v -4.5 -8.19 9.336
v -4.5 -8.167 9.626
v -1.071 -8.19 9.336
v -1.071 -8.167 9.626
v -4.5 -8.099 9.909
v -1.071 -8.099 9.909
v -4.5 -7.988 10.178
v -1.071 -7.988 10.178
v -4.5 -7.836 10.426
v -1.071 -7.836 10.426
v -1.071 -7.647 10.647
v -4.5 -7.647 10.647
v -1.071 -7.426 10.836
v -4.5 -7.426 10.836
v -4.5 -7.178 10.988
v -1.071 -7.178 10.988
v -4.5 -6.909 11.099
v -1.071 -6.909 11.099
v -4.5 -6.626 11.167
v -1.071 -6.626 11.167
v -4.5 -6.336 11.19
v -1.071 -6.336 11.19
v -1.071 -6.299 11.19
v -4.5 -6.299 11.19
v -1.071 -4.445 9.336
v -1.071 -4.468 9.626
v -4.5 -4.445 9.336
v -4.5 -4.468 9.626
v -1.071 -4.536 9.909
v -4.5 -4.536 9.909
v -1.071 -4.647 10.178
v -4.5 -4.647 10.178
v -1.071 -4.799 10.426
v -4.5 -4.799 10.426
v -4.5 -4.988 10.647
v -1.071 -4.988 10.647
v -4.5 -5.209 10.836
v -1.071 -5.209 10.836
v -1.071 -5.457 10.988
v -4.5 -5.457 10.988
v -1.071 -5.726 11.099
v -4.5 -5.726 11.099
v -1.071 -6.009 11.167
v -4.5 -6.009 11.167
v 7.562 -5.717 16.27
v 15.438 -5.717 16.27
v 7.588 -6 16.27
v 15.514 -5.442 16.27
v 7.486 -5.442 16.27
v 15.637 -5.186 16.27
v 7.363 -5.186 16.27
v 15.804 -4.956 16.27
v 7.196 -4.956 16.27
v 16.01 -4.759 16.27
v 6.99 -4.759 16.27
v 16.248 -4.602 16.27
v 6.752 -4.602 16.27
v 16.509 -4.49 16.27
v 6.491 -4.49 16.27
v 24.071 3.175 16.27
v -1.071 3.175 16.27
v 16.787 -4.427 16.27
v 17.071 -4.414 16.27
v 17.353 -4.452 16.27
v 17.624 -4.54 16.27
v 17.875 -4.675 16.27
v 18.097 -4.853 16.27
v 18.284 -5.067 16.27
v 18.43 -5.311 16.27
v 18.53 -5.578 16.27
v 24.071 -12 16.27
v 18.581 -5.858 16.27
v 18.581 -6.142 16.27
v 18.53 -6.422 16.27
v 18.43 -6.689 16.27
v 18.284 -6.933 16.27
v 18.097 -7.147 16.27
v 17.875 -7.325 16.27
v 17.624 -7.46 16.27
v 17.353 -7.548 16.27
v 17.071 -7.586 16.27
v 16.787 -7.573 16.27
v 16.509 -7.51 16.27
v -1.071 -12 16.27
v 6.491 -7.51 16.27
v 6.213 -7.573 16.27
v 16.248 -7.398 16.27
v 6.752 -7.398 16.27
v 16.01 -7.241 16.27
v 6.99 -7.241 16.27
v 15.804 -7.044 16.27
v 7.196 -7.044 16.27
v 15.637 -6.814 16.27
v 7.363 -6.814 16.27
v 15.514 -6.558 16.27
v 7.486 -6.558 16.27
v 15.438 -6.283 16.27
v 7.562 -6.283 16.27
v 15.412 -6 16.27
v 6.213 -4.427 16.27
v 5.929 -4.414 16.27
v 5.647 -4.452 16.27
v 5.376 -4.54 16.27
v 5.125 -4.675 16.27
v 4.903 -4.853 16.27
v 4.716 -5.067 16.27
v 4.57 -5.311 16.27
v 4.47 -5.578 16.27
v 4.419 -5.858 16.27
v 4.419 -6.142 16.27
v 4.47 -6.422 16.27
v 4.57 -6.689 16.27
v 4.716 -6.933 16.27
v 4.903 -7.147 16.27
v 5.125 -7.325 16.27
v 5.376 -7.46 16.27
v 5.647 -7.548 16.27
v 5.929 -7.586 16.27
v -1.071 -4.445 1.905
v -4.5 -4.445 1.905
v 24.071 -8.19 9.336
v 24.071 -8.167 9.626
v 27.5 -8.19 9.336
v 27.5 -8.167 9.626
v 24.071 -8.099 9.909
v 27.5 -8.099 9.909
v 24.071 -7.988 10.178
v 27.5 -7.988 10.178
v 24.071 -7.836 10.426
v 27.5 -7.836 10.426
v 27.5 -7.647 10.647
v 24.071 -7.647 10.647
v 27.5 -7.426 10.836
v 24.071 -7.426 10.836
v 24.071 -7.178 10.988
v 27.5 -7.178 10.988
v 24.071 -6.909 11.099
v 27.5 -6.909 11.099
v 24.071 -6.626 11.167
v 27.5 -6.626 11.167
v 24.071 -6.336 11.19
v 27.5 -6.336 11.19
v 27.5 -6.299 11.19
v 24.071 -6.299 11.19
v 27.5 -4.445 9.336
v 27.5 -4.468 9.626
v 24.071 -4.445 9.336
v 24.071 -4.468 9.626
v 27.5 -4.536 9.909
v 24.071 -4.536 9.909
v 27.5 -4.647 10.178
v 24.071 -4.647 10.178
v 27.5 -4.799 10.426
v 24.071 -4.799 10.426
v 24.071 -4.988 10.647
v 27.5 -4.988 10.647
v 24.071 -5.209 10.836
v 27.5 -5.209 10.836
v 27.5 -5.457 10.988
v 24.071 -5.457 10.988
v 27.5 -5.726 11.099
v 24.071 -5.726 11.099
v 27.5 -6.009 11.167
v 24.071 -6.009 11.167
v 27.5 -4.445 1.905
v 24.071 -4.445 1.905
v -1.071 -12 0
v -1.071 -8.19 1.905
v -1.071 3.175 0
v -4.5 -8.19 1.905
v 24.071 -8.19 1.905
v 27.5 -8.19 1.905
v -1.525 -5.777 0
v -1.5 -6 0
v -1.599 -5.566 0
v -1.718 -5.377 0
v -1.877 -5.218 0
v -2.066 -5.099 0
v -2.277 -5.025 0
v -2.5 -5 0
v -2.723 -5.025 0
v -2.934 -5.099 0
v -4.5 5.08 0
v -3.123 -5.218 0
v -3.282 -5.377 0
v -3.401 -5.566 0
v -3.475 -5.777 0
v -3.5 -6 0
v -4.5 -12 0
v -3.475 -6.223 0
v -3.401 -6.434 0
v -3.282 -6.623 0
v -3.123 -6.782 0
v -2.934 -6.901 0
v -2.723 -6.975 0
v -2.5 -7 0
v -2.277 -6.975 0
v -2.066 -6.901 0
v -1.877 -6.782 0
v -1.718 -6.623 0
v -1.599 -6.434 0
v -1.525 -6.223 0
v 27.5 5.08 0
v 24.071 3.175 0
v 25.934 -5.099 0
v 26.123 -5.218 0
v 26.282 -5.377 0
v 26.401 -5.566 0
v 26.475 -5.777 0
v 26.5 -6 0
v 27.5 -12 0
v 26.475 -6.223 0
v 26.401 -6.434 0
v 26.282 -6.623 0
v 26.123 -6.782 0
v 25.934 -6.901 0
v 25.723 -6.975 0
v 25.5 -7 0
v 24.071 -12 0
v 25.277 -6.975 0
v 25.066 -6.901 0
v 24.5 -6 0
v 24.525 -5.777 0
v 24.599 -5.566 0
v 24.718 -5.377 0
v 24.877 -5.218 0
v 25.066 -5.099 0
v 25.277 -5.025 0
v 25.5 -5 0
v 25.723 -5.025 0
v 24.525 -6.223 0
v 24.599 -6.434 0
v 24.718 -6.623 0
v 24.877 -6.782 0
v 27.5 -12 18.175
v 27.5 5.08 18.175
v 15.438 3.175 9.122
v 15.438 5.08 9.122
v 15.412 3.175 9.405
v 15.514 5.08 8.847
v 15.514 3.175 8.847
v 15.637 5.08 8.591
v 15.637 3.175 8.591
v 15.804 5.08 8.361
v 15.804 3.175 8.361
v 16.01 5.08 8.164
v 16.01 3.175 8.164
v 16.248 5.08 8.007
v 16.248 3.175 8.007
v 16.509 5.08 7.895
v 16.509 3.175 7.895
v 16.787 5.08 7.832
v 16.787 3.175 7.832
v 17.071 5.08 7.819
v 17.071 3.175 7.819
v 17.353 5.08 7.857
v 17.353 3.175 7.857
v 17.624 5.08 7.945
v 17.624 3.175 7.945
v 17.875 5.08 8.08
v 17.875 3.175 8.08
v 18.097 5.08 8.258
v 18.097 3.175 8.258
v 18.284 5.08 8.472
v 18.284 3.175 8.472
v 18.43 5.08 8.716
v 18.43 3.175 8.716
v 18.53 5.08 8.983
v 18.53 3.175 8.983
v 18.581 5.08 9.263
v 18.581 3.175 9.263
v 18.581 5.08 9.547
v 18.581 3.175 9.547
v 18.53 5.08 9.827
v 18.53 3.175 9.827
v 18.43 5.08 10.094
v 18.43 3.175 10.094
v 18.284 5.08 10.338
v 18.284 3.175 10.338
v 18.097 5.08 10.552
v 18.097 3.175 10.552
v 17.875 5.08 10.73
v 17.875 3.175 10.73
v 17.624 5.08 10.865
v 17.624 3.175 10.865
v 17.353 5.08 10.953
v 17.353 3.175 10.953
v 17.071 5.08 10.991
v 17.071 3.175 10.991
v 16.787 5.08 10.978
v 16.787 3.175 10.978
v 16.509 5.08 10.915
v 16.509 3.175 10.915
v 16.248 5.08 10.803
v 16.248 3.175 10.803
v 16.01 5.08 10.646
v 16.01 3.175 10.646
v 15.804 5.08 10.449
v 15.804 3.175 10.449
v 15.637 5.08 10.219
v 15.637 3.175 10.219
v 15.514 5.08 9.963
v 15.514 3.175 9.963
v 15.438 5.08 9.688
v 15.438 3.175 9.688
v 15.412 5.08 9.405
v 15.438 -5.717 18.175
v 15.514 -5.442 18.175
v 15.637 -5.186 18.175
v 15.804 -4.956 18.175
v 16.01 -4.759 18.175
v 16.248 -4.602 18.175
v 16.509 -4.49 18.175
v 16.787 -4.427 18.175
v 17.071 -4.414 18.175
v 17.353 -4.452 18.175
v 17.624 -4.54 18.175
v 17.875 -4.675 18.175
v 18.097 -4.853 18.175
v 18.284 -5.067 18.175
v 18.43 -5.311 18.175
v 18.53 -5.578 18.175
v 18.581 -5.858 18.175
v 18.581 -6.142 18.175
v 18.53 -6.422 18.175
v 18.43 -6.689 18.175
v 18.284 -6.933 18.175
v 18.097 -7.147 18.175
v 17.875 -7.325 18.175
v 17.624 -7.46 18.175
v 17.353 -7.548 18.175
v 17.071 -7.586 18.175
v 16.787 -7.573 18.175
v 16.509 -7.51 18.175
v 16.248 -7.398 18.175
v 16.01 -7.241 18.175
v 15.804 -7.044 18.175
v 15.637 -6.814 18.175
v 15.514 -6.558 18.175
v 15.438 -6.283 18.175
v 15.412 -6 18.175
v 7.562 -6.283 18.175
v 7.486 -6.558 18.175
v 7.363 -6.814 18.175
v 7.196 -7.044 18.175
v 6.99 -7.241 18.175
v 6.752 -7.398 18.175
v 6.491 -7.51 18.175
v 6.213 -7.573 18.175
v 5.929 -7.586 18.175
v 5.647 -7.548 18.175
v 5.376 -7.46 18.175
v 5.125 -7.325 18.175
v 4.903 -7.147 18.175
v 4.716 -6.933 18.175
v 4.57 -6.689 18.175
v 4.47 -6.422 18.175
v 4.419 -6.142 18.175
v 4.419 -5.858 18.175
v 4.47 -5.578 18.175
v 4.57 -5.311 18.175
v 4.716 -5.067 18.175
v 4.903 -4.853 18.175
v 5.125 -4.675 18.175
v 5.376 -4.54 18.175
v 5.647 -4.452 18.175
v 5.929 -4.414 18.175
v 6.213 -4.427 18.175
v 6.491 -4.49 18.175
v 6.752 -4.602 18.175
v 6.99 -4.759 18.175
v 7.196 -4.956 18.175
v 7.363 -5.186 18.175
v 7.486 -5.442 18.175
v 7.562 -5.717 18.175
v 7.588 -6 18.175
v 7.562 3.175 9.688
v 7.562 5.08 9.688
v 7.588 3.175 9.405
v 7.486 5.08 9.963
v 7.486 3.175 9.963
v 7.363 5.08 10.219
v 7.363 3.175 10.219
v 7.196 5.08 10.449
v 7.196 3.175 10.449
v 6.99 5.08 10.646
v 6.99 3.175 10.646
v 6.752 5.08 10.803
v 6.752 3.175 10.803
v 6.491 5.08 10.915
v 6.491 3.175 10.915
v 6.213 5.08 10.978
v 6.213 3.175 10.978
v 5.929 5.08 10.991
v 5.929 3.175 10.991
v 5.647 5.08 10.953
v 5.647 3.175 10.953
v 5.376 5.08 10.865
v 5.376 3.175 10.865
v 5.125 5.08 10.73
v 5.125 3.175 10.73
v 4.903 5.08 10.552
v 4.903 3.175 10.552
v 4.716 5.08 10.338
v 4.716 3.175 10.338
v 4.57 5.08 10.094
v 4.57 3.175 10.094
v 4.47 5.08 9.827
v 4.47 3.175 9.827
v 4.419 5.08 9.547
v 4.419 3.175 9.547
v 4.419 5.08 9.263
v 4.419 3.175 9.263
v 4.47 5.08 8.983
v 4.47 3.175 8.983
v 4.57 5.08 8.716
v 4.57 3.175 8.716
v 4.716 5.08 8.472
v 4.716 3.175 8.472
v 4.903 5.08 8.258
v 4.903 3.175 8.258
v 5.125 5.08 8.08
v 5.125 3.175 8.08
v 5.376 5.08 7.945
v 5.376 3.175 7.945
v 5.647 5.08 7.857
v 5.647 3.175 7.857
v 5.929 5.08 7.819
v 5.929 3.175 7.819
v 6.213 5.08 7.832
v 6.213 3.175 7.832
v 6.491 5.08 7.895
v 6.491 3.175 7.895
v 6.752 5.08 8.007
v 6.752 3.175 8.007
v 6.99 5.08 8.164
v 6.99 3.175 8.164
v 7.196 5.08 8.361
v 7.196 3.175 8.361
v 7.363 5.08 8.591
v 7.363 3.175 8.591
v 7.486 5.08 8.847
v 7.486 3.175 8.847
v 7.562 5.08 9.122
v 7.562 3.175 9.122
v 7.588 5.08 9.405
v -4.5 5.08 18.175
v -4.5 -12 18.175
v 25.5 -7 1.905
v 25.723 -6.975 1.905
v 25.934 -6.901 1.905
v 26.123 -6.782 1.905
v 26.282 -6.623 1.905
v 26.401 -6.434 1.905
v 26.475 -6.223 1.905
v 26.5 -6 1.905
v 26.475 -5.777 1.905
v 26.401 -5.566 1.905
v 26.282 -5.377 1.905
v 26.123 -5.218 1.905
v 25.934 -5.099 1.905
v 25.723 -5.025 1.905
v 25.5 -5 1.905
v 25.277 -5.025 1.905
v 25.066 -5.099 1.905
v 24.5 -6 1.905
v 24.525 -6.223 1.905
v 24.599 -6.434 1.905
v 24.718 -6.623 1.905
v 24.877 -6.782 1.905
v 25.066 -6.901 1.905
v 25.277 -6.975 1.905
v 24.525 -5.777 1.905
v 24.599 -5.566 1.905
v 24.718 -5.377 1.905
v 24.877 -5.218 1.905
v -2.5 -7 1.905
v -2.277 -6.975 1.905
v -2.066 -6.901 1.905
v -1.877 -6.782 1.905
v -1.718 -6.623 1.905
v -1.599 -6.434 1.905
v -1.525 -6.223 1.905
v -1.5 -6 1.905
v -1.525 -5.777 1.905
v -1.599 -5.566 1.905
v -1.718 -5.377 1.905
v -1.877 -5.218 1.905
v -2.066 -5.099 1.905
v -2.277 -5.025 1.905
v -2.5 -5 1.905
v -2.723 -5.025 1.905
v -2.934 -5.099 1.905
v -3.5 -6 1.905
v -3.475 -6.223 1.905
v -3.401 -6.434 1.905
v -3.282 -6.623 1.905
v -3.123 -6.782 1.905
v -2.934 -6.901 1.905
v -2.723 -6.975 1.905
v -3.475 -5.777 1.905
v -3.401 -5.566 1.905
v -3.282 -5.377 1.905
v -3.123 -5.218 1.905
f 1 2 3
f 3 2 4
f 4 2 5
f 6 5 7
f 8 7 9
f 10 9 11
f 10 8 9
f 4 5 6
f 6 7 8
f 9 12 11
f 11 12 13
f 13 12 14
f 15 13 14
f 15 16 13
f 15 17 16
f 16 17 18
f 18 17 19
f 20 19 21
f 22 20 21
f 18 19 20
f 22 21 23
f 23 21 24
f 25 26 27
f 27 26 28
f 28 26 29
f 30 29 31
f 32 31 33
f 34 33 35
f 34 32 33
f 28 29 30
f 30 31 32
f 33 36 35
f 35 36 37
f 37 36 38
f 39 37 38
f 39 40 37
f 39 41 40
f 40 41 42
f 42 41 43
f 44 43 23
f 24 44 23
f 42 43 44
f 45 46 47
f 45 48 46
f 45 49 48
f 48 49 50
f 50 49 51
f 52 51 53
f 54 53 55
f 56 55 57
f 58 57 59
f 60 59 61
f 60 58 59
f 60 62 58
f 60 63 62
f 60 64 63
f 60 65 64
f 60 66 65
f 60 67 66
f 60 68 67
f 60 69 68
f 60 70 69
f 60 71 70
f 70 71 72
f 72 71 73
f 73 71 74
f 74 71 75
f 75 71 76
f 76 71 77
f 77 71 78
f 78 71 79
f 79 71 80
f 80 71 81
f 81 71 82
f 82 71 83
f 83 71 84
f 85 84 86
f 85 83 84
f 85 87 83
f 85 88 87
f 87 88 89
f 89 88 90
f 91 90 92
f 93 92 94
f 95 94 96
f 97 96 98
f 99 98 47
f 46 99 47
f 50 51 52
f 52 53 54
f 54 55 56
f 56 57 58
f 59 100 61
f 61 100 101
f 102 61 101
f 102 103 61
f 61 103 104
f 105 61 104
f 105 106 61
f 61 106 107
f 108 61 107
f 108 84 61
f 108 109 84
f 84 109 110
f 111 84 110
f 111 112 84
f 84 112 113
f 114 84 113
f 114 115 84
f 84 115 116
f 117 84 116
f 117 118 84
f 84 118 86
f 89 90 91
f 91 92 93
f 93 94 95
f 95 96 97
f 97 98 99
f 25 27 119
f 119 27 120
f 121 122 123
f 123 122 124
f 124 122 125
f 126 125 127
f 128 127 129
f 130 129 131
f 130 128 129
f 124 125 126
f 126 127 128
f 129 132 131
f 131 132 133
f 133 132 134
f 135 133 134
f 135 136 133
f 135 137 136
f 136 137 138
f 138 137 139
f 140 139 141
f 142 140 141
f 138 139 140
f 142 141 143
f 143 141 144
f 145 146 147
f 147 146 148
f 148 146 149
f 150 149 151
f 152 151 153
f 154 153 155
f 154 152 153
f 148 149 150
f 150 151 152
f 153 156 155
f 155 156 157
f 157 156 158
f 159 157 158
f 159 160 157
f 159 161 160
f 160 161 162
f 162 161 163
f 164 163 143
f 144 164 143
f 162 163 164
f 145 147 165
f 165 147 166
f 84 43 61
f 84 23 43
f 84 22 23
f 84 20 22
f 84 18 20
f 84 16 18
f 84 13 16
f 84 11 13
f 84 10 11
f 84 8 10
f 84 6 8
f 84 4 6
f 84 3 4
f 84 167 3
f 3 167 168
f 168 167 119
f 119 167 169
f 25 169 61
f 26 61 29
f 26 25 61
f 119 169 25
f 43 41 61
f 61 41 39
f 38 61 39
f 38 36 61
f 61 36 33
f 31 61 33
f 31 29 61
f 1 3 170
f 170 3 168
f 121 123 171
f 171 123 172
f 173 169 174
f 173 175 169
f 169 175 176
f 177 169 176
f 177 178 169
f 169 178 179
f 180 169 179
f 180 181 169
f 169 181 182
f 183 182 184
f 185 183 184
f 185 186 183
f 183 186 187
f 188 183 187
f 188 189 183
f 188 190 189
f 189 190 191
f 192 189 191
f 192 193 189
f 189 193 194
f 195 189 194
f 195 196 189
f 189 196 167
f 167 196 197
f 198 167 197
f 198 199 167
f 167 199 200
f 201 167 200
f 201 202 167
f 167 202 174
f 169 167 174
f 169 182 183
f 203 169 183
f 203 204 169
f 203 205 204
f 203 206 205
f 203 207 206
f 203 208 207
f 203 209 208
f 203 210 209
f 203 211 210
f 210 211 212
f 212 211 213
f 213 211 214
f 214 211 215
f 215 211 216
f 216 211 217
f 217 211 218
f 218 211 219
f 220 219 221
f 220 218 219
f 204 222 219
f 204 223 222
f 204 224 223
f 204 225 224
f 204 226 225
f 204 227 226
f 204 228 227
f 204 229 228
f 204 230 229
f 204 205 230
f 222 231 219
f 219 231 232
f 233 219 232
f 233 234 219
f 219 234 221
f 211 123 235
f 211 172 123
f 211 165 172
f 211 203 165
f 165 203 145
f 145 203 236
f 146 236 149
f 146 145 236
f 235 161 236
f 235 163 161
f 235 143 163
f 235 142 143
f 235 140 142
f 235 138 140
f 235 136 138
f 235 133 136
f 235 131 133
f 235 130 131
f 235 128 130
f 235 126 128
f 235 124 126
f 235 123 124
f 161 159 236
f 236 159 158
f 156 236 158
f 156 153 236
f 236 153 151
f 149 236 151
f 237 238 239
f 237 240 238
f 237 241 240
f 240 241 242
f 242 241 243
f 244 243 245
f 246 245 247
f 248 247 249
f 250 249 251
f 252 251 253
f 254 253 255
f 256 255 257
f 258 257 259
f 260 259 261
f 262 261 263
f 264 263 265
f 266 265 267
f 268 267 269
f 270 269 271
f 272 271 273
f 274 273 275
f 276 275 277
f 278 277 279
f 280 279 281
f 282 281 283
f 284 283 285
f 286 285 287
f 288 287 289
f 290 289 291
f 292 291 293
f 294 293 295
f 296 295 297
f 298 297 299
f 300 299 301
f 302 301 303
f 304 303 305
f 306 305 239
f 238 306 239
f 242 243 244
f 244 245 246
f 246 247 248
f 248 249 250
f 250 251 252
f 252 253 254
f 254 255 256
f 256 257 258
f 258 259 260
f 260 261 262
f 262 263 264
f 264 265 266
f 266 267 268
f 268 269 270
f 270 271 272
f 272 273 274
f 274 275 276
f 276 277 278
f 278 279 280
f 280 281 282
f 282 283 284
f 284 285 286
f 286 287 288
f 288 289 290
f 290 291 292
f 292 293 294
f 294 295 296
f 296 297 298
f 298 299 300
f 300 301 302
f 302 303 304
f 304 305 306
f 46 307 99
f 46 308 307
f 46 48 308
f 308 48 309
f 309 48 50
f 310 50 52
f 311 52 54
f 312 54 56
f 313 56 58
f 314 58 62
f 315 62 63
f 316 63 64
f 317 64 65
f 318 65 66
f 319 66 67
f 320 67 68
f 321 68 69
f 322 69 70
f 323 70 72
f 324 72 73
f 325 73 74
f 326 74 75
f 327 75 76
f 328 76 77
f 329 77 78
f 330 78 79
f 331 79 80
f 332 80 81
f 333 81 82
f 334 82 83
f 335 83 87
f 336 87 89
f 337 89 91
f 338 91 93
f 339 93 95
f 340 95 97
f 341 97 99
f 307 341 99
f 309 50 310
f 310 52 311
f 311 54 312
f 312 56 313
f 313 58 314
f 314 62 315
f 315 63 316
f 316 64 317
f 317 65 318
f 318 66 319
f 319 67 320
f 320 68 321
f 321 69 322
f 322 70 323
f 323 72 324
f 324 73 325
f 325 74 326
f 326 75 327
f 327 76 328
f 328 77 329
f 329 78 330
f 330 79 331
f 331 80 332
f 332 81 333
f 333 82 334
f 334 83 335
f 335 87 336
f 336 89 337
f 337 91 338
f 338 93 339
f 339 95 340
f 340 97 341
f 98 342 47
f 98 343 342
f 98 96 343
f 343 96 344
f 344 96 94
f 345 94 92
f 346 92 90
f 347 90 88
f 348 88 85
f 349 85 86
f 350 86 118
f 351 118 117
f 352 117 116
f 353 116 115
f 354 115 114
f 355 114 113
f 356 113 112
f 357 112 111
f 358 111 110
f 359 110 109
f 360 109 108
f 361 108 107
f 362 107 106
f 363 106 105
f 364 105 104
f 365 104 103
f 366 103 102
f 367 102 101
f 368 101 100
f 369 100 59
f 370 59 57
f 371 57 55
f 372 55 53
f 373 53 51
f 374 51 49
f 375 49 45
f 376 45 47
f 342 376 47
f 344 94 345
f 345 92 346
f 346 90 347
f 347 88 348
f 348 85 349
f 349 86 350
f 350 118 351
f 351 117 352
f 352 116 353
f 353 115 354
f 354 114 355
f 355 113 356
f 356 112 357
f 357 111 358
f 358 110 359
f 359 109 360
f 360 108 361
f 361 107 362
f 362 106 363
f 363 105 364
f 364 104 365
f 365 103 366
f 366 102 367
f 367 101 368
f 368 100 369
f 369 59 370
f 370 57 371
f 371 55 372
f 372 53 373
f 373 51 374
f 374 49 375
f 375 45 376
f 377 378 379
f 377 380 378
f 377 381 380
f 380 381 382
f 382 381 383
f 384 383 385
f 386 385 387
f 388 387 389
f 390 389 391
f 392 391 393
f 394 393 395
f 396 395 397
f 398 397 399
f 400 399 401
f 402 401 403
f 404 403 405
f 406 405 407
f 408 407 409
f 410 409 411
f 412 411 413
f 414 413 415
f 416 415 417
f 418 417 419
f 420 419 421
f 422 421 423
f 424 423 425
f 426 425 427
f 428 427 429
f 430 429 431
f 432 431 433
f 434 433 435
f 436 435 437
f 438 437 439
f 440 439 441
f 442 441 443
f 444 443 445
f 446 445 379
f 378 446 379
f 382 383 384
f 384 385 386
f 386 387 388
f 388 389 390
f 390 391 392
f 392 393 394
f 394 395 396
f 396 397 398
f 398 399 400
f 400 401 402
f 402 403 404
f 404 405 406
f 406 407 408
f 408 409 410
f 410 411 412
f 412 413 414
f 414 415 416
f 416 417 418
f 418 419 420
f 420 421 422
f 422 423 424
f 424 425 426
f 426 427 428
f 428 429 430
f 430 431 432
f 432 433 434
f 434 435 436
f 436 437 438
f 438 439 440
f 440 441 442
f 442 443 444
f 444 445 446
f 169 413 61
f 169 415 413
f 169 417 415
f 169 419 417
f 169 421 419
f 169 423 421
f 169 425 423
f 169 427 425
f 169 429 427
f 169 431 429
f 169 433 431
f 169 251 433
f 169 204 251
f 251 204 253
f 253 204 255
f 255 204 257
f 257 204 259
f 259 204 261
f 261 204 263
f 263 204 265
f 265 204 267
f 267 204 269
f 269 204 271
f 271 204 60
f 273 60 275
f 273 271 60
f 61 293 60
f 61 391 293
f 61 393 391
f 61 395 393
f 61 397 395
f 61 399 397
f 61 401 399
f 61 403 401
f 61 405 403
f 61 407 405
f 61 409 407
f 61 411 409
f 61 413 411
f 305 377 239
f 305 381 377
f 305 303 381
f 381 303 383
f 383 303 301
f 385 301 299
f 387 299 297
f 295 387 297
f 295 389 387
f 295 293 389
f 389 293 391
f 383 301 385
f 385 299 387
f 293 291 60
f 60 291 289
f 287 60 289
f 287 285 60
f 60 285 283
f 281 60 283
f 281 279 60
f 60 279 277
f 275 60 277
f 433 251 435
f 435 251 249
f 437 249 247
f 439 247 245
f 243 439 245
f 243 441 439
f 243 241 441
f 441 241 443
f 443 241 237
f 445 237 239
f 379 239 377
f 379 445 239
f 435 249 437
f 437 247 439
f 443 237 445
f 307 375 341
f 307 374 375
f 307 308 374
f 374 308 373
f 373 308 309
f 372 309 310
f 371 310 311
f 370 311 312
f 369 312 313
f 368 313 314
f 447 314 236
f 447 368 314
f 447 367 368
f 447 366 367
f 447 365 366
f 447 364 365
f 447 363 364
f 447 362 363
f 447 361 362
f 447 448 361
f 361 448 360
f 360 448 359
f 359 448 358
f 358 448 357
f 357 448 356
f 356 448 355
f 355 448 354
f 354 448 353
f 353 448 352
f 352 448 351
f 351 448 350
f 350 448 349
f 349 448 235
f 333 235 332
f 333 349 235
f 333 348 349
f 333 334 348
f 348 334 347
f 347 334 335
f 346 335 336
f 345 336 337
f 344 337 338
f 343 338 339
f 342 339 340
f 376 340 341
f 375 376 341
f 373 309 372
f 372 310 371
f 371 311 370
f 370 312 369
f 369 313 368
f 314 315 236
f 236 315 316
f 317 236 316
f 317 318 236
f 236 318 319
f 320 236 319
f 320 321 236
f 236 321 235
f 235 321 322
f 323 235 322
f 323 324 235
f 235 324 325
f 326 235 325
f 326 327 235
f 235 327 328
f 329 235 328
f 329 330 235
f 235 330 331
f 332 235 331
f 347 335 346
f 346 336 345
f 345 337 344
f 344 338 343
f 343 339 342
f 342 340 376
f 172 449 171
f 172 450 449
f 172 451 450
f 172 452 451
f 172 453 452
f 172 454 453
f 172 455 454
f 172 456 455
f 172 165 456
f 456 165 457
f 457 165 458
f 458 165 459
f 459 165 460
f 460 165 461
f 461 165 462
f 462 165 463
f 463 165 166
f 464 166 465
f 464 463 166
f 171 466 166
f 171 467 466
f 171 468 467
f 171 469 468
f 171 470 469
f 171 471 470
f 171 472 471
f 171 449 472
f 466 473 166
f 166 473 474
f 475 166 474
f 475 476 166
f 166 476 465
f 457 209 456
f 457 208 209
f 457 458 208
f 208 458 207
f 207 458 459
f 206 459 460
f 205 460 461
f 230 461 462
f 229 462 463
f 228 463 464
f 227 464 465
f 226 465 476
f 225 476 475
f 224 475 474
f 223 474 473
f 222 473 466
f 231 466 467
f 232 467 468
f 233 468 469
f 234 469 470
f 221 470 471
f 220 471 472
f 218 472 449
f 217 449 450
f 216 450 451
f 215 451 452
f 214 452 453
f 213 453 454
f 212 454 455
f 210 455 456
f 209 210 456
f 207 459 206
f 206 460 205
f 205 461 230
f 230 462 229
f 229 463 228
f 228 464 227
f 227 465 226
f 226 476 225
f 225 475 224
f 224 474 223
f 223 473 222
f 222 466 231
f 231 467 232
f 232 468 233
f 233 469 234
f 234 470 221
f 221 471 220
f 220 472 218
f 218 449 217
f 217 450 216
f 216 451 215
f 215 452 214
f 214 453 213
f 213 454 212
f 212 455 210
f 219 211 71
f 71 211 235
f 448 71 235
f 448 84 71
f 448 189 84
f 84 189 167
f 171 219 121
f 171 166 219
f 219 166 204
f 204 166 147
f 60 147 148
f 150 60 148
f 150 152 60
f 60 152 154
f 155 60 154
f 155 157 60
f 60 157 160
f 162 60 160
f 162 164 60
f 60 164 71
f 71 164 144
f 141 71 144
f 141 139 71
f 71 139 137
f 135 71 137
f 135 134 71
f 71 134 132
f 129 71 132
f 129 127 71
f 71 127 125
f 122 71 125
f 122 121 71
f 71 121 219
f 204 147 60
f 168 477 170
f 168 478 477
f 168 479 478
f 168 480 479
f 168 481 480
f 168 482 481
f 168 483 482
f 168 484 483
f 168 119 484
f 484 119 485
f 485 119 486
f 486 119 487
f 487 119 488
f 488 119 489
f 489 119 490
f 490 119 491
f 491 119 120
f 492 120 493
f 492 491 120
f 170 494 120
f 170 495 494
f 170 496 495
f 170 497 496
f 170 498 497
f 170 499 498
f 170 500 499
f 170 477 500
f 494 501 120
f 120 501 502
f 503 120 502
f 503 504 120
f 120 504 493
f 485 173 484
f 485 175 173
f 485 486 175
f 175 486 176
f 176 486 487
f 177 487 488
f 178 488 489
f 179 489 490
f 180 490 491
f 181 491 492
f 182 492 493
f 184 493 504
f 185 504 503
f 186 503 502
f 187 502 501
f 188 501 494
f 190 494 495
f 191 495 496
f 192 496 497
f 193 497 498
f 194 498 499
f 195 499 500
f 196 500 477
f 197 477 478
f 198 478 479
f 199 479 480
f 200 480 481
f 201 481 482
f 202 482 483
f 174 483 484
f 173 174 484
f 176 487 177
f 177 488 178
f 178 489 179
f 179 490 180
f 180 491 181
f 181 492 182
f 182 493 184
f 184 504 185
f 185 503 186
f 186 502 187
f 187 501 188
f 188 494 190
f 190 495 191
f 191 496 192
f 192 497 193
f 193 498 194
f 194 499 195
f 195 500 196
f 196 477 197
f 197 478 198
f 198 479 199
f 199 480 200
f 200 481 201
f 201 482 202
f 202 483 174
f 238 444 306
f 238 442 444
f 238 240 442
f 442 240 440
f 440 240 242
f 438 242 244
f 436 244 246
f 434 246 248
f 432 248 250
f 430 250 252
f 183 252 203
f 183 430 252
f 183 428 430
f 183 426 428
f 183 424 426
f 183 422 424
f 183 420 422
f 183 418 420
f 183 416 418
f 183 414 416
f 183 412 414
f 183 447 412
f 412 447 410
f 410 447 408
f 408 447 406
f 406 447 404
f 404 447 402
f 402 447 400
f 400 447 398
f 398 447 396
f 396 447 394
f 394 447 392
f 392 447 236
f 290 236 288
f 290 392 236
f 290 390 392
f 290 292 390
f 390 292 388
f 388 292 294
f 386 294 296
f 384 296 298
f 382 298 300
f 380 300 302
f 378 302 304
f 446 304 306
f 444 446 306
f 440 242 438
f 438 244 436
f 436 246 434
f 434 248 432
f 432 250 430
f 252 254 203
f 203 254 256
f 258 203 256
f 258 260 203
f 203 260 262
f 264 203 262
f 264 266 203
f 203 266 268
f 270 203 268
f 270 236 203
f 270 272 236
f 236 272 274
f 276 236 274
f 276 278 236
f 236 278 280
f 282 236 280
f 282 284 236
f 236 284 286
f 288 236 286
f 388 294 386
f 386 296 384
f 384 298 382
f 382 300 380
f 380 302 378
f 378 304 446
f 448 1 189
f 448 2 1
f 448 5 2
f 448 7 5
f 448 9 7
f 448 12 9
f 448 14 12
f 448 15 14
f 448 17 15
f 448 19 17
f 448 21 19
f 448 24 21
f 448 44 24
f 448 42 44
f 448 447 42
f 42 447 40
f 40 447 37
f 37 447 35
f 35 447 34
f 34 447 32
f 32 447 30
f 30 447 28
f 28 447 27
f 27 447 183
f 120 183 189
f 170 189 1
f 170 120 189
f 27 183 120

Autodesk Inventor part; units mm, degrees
sketch "Sketch1" plane through (0, 0, 0) normal (0, 0, 1) x (1, 0, 0)
  line L0 (-4.3, 0) -> (27.3, 0) projected
  line L1 (27.5, -0.2) -> (27.5, -5.5) projected
  line L2 (-4.3, -12) -> (27.3, -12) projected
  line L3 (27.5, -6.5) -> (27.5, -11.8) projected
  line L4 (-4.5, -0.2) -> (-4.5, -5.5) projected
  line L5 (-4.5, -6.5) -> (-4.5, -11.8) projected
  line L6 (-4.5, 0) -> (-1.071, 0)
  line L7 (-1.071, 0) -> (-1.071, -12)
  line L8 (-1.071, -12) -> (-4.5, -12)
  line L9 (-4.5, -12) -> (-4.5, 0)
  arc A0 (-3.366, -6.5) -> (-3.366, -5.5) centre (-2.5, -6) ccw projected
  circle A1 centre (-2.5, -6) radius 1
  line L10 (27.5, -12) -> (24.071, -12)
  line L11 (24.071, -12) -> (24.071, 0)
  line L12 (24.071, 0) -> (27.5, 0)
  line L13 (27.5, 0) -> (27.5, -12)
  arc A2 (26.366, -5.5) -> (26.366, -6.5) centre (25.5, -6) ccw projected
  circle A3 centre (25.5, -6) radius 1
  line L14 (-1.071, 0) -> (-4.5, 0)
  line L15 (-4.5, 0) -> (-4.5, 1.905)
  line L16 (-4.5, 1.905) -> (-1.071, 1.905)
  line L17 (-1.071, 1.905) -> (-1.071, 0)
  line L18 (11.5, 0) -> (11.5, -12) construction
  line L19 (27.5, 0) -> (24.071, 0)
  line L20 (24.071, 0) -> (27.5, 0)
  line L21 (27.5, 0) -> (27.5, 1.905)
  line L22 (27.5, 1.905) -> (24.071, 1.905)
  line L23 (24.071, 1.905) -> (24.071, 0)
  line L24 (-4.5, 1.905) -> (-1.071, 1.905)
  line L25 (-1.071, 1.905) -> (-1.071, 5.08)
  line L26 (-1.071, 5.08) -> (-4.5, 5.08)
  line L27 (-4.5, 5.08) -> (-4.5, 1.905)
  line L28 (24.071, 1.905) -> (27.5, 1.905)
  line L29 (27.5, 1.905) -> (27.5, 5.08)
  line L30 (27.5, 5.08) -> (24.071, 5.08)
  line L31 (24.071, 5.08) -> (24.071, 1.905)
  point P0 (0, 0)
  dimension "d0" = 3.429
  dimension "d1" = 3.429
  dimension "d2" = 1.905
  dimension "d8" = 3.175
  dimension "d9" = 3.175
extrude "Extrusion1" add sketch "Sketch1" along normal blind 1.905 contours L6 L15 L16 L17 L0 | L0 L7 L2 L8 L9 L5 L4 L6 | L23 L22 L21 L12 L0 | L0 L12 L13 L1 L3 L10 L2 L11 | L16 L27 L26 L25 | L31 L30 L29 L22
ref_plane "Work Plane1" through (0, 3.175, 15) normal (0, 1, 0) x (1, 0, 0)
sketch "Sketch2" plane through (0, 3.175, 15) normal (0, 1, 0) x (1, 0, 0)
  line L0 (-1.071, 15) -> (-4.5, 15) projected
  line L1 (-4.5, 15) -> (-4.5, 13.095) projected
  line L2 (-1.071, 13.095) -> (-4.5, 13.095) projected
  line L3 (-1.071, 15) -> (-1.071, 13.095) projected
  line L4 (27.5, 15) -> (24.071, 15) projected
  line L5 (24.071, 15) -> (24.071, 13.095) projected
  line L6 (27.5, 13.095) -> (24.071, 13.095) projected
  line L7 (27.5, 15) -> (27.5, 13.095) projected
  line L8 (22.8, 0) -> (0.2, 0) projected
  line L9 (-4.5, 13.095) -> (27.5, 13.095)
  line L10 (27.5, -3.175) -> (-4.5, -3.175)
  line L11 (-4.5, 11.19) -> (-1.071, 11.19)
  line L12 (-1.071, 11.19) -> (-1.071, 0)
  line L13 (-1.071, 0) -> (-4.5, 0)
  line L14 (27.5, 0) -> (24.071, 0)
  line L15 (24.071, 0) -> (24.071, 11.19)
  line L16 (24.071, 11.19) -> (27.5, 11.19)
  line L17 (23, 15) -> (23, 5) projected
  line L18 (0, 5) -> (0, 15) projected
  line L19 (-1.071, 15) -> (-1.071, 13.095) projected
  line L20 (24.071, 15) -> (24.071, 13.095) projected
  arc A0 (-1.071, 7.761) -> (-4.5, 11.19) centre (-4.5, 7.761) ccw
  arc A1 (-4.5, 0) -> (-1.071, 3.429) centre (-4.5, 3.429) ccw
  arc A2 (27.5, 11.19) -> (24.071, 7.761) centre (27.5, 7.761) ccw
  arc A3 (24.071, 3.429) -> (27.5, 0) centre (27.5, 3.429) ccw
  line L21 (-4.5, -3.175) -> (-4.5, 0)
  line L22 (-4.5, 11.19) -> (-4.5, 13.095)
  line L23 (27.5, 13.095) -> (27.5, 11.19)
  line L24 (27.5, 0) -> (27.5, -3.175)
  line L25 (27.5, 11.19) -> (27.5, 0)
  line L26 (-4.5, 11.19) -> (-4.5, 0)
  dimension "d5" = 3.175
  dimension "d13" = 1.905
extrude "Extrusion2" add sketch "Sketch2" along normal blind 1.905 contours L9 L6 L23 L16 L15 L14 L24 L10 L21 L13 L12 L11 L22 L2 | L11 L12 A0 | A0 L12 A1 L26 | A1 L12 L13 | A2 L15 L16 | L25 A3 L15 A2 | L14 L15 A3
sketch "Sketch6" plane through (0, 3.175, 15) normal (0, -1, 0) x (1, 0, 0)
  line L0 (0.2, 0) -> (22.8, 0) projected
  line L1 (-4.5, -15) -> (-4.5, 3.175) projected
  line L2 (27.5, 3.175) -> (-4.5, 3.175)
  line L3 (-4.5, 3.175) -> (-4.5, 1.27)
  line L4 (-4.5, 1.27) -> (27.5, 1.27)
  line L5 (27.5, 1.27) -> (27.5, 3.175)
  line L6 (27.5, 3.175) -> (27.5, -13.095) projected
  line L7 (-4.5, 3.175) -> (27.5, 3.175) projected
  point P0 (0, -15)
  dimension "d10" = 1.905
extrude "Extrusion3" add sketch "Sketch6" along normal up to surface (15.175 mm away)
sketch "Sketch7" plane through (-4.5, 5.08, 18.175) normal (0, 0, 1) x (1, 0, 0)
  line L0 (32, -17.08) -> (32, 0) projected
  line L1 (0, 0) -> (32, 0) projected
  line L2 (0, -17.08) -> (0, 0) projected
  line L3 (0, -17.08) -> (32, -17.08) projected
  line L4 (32, -17.08) -> (0, -17.08) construction
  line L5 (32, -17.08) -> (32, 0) construction
  circle A0 centre (10.5, -11.08) radius 1.5875
  circle A1 centre (10.5, -11.08) radius 3.75
  point P0 (4.5, -5.08)
  point P1 (31.8064, -17.08)
  point P2 (0.1936, -17.08)
  dimension "d15" = 3.175
sketch "Sketch8" plane through (24.071, 5.08, 0) normal (0, 1, 0) x (1, 0, 0)
  line L0 (3.429, 0) -> (3.429, -18.175) projected
  line L1 (3.429, 0) -> (0, 0) projected
  line L2 (0, 0) -> (0, -1.905) projected
  line L3 (0, -1.905) -> (-25.142, -1.905) projected
  line L4 (-25.142, 0) -> (-25.142, -1.905) projected
  line L5 (-25.142, 0) -> (-28.571, 0) projected
  line L6 (-28.571, 0) -> (-28.571, -18.175) projected
  line L7 (-28.571, -18.175) -> (3.429, -18.175) projected
  line L8 (-25.142, -7.239) -> (-25.142, -11.571) construction
  circle A0 centre (-18.071, -9.405) radius 1.5875
  line L9 (-21.821, 16.1332) -> (-14.321, 16.1332)
  line L10 (-18.071, 16.1332) -> (-18.071, -9.3987) construction
  line L11 (-25.142, -9.405) -> (0, -9.405) construction
  point P0 (-24.071, 0)
  dimension "d16" = 3.175
extrude "Extrusion4" cut sketch "Sketch8" against normal up to next contours A0
extrude "Extrusion5" cut sketch "Sketch7" against normal up to next contours A0
ref_plane "Work Plane3" through (11.5, -12, 0) normal (1, 0, 0) x (0, 0, -1)
mirror "Mirror1" about plane through (11.5, -12, 0) normal (1, 0, 0) of "Extrusion5"
mirror "Mirror2" about plane through (11.5, -12, 0) normal (1, 0, 0) of "Extrusion4"
sketch "Sketch9" plane through (27.5, 3.175, 16.27) normal (0, 0, -1) x (-1, 0, 0)
  circle A0 centre (2, -9.175) radius 1 projected
  line L0 (3.429, 1.905) -> (3.429, -15.175) projected
  line L1 (0, 1.905) -> (3.429, 1.905) projected
  line L2 (0, -15.175) -> (0, 1.905) projected
  line L3 (3.429, -15.175) -> (0, -15.175) projected
  circle A1 centre (30, -9.175) radius 1 projected
  line L4 (28.571, -15.175) -> (28.571, 1.905) projected
  line L5 (32, -15.175) -> (28.571, -15.175) projected
  line L6 (32, 1.905) -> (32, -15.175) projected
  line L7 (28.571, 1.905) -> (32, 1.905) projected
  line L8 (0, -15.175) -> (3.429, -15.175)
  line L9 (3.429, -15.175) -> (3.429, -11.365)
  line L10 (3.429, -11.365) -> (0, -11.365)
  line L11 (0, -11.365) -> (0, -15.175)
  line L12 (0, 0) -> (32, 0) projected
  line L13 (0, 0) -> (3.429, 0)
  line L14 (3.429, 0) -> (3.429, -7.62)
  line L15 (3.429, -7.62) -> (0, -7.62)
  line L16 (0, -7.62) -> (0, 0)
  point P0 (27.5, -3.175)
  dimension "d21" = 7.62
  dimension "d22" = 3.81
extrude "Extrusion6" add sketch "Sketch9" along normal up to next contours L0 L15 L2 L12 | L0 L3 L2 L10
ref_plane "Work Plane4" through (11.5, -12, 0) normal (1, 0, 0) x (0, 0, -1)
mirror "Mirror3" about plane through (11.5, -12, 0) normal (1, 0, 0) of "Extrusion6"
sketch "Sketch10" plane through (24.071, 3.175, 1.905) normal (0, 0, -1) x (-1, 0, 0)
  line L0 (25.142, 0) -> (25.142, 1.905) projected
  line L1 (0, 1.905) -> (25.142, 1.905) projected
  line L2 (0, 1.905) -> (0, 0) projected
  line L3 (0, 0) -> (25.142, 0) projected
  point P0 (24.071, -3.175)
extrude "Extrusion7" add sketch "Sketch10" along normal up to surface (1.905 mm away)
sketch "Sketch11" plane through (24.071, 3.175, 16.27) normal (0, 0, -1) x (-1, 0, 0)
  line L0 (25.142, -15.175) -> (25.142, -11.365) projected
  line L1 (25.142, -11.365) -> (28.571, -11.365) projected
  line L2 (28.571, -7.62) -> (28.571, -11.365) projected
  line L3 (28.571, -7.62) -> (25.142, -7.62) projected
  line L4 (25.142, -7.62) -> (25.142, 0) projected
  line L5 (0, 0) -> (25.142, 0) projected
  line L6 (0, 0) -> (0, -7.62) projected
  line L7 (0, -7.62) -> (-3.429, -7.62) projected
  line L8 (-3.429, -7.62) -> (-3.429, -11.365) projected
  line L9 (-3.429, -11.365) -> (0, -11.365) projected
  line L10 (0, -11.365) -> (0, -15.175) projected
  line L11 (0, -15.175) -> (25.142, -15.175) projected
  circle A0 centre (7.071, -9.175) radius 1.5875 projected
  circle A1 centre (18.071, -9.175) radius 1.5875 projected
  line L12 (0, -7.62) -> (0, -11.365)
  point P0 (24.071, -3.175)
extrude "Extrusion8" add sketch "Sketch11" along normal blind 5.08 contours L9 L8 L7 L12
fillet "Fillet2" radius 1.8542 2 edges at (25.7855, -4.445, 11.19) (25.7855, -8.19, 11.19)
mirror "Mirror4" about plane through (11.5, -12, 0) normal (1, 0, 0) of "Extrusion8"
mirror "Mirror5" about plane through (11.5, -12, 0) normal (1, 0, 0) of "Fillet2"
properties part number "Servo_vice_real"
